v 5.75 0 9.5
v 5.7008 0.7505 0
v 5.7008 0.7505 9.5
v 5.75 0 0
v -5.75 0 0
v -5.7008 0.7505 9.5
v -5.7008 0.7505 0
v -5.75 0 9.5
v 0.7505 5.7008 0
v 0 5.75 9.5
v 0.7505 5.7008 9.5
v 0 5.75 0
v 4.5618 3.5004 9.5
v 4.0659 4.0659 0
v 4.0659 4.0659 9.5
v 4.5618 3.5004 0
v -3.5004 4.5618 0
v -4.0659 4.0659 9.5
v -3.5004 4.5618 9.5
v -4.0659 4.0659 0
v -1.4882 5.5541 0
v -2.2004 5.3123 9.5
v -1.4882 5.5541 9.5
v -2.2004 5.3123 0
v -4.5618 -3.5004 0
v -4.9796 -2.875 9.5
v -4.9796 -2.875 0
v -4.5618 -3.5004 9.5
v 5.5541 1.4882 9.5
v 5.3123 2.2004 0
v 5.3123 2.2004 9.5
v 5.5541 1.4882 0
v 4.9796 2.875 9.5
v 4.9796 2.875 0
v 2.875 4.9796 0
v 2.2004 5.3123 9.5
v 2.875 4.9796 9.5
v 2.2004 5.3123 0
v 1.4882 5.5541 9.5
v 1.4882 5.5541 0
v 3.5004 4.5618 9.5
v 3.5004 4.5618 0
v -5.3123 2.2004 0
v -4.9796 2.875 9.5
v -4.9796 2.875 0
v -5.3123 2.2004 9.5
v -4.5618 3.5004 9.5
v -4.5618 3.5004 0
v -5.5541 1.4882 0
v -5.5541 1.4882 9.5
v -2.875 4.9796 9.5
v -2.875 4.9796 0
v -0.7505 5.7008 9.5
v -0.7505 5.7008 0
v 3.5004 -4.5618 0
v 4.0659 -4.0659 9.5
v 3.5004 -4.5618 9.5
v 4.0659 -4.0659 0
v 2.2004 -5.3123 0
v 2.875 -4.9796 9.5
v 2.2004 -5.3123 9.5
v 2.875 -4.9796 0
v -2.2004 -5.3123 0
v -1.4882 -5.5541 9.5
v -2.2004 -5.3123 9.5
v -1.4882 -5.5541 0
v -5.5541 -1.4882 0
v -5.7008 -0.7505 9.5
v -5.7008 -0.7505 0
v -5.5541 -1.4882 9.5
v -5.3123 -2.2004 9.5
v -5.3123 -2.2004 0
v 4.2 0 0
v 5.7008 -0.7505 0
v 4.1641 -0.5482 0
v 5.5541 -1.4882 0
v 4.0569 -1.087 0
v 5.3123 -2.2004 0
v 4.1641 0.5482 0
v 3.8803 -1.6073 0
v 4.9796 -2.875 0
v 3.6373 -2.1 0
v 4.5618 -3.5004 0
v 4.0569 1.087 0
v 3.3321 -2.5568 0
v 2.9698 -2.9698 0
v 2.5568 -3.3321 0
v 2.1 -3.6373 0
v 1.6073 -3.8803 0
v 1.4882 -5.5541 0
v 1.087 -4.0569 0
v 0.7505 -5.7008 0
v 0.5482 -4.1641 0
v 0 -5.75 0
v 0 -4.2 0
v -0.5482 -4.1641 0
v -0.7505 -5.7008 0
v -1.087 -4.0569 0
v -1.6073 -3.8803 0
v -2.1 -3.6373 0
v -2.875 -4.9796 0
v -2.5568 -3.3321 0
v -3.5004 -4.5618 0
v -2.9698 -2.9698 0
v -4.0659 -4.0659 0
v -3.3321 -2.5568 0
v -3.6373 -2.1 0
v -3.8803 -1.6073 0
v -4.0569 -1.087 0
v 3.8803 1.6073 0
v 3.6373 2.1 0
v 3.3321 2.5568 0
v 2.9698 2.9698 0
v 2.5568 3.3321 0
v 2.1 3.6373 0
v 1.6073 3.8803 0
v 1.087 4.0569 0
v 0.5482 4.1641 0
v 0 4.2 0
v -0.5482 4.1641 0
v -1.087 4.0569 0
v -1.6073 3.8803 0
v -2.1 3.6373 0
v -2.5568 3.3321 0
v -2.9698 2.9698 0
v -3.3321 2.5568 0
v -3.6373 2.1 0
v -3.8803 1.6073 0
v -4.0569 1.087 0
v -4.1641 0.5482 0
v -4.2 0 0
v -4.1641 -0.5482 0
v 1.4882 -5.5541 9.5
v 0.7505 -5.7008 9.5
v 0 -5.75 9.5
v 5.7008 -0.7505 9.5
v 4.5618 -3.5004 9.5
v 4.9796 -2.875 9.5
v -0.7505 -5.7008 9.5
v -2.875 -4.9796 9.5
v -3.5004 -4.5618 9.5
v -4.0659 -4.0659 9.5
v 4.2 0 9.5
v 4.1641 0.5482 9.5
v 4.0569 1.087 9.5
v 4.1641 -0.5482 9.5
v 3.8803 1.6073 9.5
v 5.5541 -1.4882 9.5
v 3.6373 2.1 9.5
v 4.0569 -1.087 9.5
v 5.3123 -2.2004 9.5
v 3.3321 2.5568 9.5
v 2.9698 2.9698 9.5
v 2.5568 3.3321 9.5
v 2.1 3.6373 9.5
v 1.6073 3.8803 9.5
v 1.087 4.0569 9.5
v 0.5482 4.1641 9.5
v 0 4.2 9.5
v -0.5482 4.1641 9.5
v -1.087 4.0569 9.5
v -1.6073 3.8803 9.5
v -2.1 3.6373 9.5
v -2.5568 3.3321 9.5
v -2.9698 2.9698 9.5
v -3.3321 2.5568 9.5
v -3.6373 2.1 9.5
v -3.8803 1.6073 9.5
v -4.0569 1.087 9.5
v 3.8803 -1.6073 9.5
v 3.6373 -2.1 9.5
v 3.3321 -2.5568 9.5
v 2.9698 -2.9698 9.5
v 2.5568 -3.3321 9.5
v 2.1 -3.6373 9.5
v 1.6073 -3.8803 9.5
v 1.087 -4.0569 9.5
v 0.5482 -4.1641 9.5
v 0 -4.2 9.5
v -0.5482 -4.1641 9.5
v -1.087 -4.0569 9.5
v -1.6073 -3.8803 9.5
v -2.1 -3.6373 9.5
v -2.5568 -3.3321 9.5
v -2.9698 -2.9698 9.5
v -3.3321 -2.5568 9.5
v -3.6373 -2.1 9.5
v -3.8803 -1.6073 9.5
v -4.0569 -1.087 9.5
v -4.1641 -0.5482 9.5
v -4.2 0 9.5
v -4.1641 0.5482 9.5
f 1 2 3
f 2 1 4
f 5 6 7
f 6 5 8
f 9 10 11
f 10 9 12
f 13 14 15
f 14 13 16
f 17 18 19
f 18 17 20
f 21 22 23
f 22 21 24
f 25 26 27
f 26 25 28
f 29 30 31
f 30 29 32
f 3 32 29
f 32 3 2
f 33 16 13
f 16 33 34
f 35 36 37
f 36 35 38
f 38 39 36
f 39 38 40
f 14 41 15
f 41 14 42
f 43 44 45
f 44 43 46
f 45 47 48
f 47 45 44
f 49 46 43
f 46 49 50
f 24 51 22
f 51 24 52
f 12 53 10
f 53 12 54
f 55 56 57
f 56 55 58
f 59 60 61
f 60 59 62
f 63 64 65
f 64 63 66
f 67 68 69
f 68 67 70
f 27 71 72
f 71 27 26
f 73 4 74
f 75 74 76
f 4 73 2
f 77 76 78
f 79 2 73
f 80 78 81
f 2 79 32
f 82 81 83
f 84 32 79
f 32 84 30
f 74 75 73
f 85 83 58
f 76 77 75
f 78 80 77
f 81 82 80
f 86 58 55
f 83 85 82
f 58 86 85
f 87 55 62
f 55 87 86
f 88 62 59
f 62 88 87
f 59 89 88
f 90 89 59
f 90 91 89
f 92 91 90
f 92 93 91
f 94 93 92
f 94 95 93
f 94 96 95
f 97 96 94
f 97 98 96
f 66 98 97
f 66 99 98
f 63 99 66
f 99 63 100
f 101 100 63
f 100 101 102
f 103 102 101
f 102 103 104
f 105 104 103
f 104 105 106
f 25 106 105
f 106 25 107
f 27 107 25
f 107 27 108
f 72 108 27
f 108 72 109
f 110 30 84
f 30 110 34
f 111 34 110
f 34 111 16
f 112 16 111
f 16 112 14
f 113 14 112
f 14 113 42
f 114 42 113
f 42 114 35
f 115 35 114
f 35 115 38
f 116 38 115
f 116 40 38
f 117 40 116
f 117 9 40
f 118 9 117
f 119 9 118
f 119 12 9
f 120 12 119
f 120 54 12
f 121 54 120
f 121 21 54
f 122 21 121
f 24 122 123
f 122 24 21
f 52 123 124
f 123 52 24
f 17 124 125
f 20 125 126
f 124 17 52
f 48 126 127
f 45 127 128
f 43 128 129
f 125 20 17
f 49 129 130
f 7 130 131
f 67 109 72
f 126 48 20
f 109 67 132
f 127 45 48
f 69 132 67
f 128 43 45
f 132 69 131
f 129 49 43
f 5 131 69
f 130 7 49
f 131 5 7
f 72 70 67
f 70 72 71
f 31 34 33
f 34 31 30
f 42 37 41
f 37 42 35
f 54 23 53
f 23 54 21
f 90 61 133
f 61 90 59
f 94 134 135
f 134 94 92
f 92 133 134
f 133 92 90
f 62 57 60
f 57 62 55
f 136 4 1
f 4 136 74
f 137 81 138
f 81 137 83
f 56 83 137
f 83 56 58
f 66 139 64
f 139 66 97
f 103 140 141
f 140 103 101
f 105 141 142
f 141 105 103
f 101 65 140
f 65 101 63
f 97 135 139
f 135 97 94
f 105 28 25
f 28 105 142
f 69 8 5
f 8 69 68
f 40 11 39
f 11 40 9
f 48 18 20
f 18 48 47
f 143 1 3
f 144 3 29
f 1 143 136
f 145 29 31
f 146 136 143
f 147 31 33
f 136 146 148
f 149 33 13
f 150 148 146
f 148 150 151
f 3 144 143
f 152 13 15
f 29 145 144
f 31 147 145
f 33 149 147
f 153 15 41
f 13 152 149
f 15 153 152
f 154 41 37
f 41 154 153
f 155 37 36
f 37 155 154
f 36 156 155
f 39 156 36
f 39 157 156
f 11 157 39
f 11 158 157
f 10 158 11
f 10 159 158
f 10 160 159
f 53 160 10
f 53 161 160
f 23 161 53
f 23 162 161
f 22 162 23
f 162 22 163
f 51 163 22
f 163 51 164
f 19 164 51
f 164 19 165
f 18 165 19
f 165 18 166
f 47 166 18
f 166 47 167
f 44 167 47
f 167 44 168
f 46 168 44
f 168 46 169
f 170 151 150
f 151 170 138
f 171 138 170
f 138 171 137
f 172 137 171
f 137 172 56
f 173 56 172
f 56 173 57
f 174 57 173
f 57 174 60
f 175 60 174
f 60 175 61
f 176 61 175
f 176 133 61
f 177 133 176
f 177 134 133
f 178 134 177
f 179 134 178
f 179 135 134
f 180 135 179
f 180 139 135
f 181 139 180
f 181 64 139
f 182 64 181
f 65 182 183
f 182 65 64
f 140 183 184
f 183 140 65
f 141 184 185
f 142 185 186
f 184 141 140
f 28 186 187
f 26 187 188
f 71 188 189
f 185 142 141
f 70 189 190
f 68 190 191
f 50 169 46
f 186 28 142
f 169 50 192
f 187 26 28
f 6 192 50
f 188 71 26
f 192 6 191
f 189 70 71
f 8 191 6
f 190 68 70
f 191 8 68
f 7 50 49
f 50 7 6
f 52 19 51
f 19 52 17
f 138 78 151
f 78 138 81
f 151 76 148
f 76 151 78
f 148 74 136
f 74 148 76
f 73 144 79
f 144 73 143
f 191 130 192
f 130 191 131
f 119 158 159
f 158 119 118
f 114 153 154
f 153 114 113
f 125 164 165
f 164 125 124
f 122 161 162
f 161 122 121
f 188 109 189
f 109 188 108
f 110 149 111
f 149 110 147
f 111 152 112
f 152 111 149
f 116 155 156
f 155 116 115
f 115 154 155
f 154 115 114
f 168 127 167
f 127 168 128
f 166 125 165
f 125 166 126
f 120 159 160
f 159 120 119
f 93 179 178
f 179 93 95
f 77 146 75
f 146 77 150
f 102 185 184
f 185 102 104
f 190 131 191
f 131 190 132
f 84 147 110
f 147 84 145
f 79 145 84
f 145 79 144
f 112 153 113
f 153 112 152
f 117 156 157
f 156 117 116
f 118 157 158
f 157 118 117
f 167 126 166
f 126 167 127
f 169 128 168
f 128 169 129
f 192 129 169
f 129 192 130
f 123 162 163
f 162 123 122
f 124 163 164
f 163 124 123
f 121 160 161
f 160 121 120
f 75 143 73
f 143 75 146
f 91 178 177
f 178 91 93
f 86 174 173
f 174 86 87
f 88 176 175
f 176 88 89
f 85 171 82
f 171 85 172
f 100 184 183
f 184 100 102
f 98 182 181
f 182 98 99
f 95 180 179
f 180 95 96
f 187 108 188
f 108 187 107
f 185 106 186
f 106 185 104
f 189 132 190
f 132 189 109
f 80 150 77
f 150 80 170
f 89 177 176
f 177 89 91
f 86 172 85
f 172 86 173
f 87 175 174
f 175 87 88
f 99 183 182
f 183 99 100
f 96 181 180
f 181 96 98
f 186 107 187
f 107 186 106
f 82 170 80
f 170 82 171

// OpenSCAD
// file: bracket.scad
// =====================================================================
//  DeskMate DIY – WSPORNIKI GŁOWY (2 części: od strony serwa i łożyska)
//  Przykręcane do tyłu płyty głowy 2 x M3x10 (łeb stożkowy od przodu
//  płyty, wkładki w kołnierzu). Strona +X: orczyk serwa TILT.
//  Strona -X: śruba M8 jako oś w łożysku 608.
//  -D 'side="servo"' lub 'side="bearing"'. Druk: zewnętrzną ścianą do stołu.
// =====================================================================
include <params.scad>
side = "servo"; // [servo, bearing]

module bracket_profile2d() {   // x -> Y, y -> Z
  hull() {
    circle(r = hub_r);
    translate([slab_back() - br_fl_t, -br_fl_hz]) square([br_fl_t, 2*br_fl_hz]);
  }
}

// wspornik dla strony +X (strona łożyska = lustro)
module bracket_body(kind) {
  difference() {
    union() {
      yz_extrude(br_x - br_t, br_x) bracket_profile2d();
      translate([br_fl_x0, slab_back() - br_fl_t, -br_fl_hz])
        cube([br_x - br_fl_x0, br_fl_t, 2*br_fl_hz]);
    }
    // wkładki M3 pod śruby od płyty głowy
    for (p = br_screw) translate([p[0], 0, p[1]]) cyl_y(ins_d, slab_back() - ins_l, slab_back() + 1);
    if (kind == "servo") {
      // gniazdo tarczy orczyka + otwór dostępu do śruby wałka
      cyl_x(sv_hornd(servo_tilt) + 0.6, br_x - 1.5, br_x + 1);
      cyl_x(9, br_x - br_t - 1, br_x + 1);
      for (a = [0 : 90 : 270]) rotate([a, 0, 0]) translate([0, horn_hole_r[1], 0])
        cyl_x(1.8, br_x - 9, br_x + 1);
      for (a = [45 : 90 : 315]) rotate([a, 0, 0]) translate([0, horn_hole_r[0], 0])
        cyl_x(1.6, br_x - 9, br_x + 1);
    } else {
      // przelot M8 + gniazdo łba sześciokątnego od środka
      cyl_x(m8_clear, br_x - br_t - 1, br_x + 1);
      translate([br_x - br_t - 1, 0, 0]) rotate([0, 90, 0])
        cylinder(d = m8_head_af / cos(30), h = m8_head_t + 1, $fn = 6);
    }
  }
}

module bracket(kind) {          // w układzie głowy
  if (kind == "servo") bracket_body("servo");
  else mirror([1, 0, 0]) bracket_body("bearing");
}

// tuleja dystansowa (wspornik -> pierścień wewn. 608)
module spacer() {
  difference() { cylinder(d = 11.5, h = spacer_len); translate([0, 0, -1]) cylinder(d = m8_clear, h = spacer_len + 2); }
}

if (is_undef(ASM)) {
  translate([0, 0, br_x]) rotate([0, 90, 0]) bracket_body(side);
}
// main file
// DeskMate DIY – tuleja dystansowa osi TILT (wspornik głowy -> łożysko 608)
ASM = true;
include <bracket.scad>
spacer();
